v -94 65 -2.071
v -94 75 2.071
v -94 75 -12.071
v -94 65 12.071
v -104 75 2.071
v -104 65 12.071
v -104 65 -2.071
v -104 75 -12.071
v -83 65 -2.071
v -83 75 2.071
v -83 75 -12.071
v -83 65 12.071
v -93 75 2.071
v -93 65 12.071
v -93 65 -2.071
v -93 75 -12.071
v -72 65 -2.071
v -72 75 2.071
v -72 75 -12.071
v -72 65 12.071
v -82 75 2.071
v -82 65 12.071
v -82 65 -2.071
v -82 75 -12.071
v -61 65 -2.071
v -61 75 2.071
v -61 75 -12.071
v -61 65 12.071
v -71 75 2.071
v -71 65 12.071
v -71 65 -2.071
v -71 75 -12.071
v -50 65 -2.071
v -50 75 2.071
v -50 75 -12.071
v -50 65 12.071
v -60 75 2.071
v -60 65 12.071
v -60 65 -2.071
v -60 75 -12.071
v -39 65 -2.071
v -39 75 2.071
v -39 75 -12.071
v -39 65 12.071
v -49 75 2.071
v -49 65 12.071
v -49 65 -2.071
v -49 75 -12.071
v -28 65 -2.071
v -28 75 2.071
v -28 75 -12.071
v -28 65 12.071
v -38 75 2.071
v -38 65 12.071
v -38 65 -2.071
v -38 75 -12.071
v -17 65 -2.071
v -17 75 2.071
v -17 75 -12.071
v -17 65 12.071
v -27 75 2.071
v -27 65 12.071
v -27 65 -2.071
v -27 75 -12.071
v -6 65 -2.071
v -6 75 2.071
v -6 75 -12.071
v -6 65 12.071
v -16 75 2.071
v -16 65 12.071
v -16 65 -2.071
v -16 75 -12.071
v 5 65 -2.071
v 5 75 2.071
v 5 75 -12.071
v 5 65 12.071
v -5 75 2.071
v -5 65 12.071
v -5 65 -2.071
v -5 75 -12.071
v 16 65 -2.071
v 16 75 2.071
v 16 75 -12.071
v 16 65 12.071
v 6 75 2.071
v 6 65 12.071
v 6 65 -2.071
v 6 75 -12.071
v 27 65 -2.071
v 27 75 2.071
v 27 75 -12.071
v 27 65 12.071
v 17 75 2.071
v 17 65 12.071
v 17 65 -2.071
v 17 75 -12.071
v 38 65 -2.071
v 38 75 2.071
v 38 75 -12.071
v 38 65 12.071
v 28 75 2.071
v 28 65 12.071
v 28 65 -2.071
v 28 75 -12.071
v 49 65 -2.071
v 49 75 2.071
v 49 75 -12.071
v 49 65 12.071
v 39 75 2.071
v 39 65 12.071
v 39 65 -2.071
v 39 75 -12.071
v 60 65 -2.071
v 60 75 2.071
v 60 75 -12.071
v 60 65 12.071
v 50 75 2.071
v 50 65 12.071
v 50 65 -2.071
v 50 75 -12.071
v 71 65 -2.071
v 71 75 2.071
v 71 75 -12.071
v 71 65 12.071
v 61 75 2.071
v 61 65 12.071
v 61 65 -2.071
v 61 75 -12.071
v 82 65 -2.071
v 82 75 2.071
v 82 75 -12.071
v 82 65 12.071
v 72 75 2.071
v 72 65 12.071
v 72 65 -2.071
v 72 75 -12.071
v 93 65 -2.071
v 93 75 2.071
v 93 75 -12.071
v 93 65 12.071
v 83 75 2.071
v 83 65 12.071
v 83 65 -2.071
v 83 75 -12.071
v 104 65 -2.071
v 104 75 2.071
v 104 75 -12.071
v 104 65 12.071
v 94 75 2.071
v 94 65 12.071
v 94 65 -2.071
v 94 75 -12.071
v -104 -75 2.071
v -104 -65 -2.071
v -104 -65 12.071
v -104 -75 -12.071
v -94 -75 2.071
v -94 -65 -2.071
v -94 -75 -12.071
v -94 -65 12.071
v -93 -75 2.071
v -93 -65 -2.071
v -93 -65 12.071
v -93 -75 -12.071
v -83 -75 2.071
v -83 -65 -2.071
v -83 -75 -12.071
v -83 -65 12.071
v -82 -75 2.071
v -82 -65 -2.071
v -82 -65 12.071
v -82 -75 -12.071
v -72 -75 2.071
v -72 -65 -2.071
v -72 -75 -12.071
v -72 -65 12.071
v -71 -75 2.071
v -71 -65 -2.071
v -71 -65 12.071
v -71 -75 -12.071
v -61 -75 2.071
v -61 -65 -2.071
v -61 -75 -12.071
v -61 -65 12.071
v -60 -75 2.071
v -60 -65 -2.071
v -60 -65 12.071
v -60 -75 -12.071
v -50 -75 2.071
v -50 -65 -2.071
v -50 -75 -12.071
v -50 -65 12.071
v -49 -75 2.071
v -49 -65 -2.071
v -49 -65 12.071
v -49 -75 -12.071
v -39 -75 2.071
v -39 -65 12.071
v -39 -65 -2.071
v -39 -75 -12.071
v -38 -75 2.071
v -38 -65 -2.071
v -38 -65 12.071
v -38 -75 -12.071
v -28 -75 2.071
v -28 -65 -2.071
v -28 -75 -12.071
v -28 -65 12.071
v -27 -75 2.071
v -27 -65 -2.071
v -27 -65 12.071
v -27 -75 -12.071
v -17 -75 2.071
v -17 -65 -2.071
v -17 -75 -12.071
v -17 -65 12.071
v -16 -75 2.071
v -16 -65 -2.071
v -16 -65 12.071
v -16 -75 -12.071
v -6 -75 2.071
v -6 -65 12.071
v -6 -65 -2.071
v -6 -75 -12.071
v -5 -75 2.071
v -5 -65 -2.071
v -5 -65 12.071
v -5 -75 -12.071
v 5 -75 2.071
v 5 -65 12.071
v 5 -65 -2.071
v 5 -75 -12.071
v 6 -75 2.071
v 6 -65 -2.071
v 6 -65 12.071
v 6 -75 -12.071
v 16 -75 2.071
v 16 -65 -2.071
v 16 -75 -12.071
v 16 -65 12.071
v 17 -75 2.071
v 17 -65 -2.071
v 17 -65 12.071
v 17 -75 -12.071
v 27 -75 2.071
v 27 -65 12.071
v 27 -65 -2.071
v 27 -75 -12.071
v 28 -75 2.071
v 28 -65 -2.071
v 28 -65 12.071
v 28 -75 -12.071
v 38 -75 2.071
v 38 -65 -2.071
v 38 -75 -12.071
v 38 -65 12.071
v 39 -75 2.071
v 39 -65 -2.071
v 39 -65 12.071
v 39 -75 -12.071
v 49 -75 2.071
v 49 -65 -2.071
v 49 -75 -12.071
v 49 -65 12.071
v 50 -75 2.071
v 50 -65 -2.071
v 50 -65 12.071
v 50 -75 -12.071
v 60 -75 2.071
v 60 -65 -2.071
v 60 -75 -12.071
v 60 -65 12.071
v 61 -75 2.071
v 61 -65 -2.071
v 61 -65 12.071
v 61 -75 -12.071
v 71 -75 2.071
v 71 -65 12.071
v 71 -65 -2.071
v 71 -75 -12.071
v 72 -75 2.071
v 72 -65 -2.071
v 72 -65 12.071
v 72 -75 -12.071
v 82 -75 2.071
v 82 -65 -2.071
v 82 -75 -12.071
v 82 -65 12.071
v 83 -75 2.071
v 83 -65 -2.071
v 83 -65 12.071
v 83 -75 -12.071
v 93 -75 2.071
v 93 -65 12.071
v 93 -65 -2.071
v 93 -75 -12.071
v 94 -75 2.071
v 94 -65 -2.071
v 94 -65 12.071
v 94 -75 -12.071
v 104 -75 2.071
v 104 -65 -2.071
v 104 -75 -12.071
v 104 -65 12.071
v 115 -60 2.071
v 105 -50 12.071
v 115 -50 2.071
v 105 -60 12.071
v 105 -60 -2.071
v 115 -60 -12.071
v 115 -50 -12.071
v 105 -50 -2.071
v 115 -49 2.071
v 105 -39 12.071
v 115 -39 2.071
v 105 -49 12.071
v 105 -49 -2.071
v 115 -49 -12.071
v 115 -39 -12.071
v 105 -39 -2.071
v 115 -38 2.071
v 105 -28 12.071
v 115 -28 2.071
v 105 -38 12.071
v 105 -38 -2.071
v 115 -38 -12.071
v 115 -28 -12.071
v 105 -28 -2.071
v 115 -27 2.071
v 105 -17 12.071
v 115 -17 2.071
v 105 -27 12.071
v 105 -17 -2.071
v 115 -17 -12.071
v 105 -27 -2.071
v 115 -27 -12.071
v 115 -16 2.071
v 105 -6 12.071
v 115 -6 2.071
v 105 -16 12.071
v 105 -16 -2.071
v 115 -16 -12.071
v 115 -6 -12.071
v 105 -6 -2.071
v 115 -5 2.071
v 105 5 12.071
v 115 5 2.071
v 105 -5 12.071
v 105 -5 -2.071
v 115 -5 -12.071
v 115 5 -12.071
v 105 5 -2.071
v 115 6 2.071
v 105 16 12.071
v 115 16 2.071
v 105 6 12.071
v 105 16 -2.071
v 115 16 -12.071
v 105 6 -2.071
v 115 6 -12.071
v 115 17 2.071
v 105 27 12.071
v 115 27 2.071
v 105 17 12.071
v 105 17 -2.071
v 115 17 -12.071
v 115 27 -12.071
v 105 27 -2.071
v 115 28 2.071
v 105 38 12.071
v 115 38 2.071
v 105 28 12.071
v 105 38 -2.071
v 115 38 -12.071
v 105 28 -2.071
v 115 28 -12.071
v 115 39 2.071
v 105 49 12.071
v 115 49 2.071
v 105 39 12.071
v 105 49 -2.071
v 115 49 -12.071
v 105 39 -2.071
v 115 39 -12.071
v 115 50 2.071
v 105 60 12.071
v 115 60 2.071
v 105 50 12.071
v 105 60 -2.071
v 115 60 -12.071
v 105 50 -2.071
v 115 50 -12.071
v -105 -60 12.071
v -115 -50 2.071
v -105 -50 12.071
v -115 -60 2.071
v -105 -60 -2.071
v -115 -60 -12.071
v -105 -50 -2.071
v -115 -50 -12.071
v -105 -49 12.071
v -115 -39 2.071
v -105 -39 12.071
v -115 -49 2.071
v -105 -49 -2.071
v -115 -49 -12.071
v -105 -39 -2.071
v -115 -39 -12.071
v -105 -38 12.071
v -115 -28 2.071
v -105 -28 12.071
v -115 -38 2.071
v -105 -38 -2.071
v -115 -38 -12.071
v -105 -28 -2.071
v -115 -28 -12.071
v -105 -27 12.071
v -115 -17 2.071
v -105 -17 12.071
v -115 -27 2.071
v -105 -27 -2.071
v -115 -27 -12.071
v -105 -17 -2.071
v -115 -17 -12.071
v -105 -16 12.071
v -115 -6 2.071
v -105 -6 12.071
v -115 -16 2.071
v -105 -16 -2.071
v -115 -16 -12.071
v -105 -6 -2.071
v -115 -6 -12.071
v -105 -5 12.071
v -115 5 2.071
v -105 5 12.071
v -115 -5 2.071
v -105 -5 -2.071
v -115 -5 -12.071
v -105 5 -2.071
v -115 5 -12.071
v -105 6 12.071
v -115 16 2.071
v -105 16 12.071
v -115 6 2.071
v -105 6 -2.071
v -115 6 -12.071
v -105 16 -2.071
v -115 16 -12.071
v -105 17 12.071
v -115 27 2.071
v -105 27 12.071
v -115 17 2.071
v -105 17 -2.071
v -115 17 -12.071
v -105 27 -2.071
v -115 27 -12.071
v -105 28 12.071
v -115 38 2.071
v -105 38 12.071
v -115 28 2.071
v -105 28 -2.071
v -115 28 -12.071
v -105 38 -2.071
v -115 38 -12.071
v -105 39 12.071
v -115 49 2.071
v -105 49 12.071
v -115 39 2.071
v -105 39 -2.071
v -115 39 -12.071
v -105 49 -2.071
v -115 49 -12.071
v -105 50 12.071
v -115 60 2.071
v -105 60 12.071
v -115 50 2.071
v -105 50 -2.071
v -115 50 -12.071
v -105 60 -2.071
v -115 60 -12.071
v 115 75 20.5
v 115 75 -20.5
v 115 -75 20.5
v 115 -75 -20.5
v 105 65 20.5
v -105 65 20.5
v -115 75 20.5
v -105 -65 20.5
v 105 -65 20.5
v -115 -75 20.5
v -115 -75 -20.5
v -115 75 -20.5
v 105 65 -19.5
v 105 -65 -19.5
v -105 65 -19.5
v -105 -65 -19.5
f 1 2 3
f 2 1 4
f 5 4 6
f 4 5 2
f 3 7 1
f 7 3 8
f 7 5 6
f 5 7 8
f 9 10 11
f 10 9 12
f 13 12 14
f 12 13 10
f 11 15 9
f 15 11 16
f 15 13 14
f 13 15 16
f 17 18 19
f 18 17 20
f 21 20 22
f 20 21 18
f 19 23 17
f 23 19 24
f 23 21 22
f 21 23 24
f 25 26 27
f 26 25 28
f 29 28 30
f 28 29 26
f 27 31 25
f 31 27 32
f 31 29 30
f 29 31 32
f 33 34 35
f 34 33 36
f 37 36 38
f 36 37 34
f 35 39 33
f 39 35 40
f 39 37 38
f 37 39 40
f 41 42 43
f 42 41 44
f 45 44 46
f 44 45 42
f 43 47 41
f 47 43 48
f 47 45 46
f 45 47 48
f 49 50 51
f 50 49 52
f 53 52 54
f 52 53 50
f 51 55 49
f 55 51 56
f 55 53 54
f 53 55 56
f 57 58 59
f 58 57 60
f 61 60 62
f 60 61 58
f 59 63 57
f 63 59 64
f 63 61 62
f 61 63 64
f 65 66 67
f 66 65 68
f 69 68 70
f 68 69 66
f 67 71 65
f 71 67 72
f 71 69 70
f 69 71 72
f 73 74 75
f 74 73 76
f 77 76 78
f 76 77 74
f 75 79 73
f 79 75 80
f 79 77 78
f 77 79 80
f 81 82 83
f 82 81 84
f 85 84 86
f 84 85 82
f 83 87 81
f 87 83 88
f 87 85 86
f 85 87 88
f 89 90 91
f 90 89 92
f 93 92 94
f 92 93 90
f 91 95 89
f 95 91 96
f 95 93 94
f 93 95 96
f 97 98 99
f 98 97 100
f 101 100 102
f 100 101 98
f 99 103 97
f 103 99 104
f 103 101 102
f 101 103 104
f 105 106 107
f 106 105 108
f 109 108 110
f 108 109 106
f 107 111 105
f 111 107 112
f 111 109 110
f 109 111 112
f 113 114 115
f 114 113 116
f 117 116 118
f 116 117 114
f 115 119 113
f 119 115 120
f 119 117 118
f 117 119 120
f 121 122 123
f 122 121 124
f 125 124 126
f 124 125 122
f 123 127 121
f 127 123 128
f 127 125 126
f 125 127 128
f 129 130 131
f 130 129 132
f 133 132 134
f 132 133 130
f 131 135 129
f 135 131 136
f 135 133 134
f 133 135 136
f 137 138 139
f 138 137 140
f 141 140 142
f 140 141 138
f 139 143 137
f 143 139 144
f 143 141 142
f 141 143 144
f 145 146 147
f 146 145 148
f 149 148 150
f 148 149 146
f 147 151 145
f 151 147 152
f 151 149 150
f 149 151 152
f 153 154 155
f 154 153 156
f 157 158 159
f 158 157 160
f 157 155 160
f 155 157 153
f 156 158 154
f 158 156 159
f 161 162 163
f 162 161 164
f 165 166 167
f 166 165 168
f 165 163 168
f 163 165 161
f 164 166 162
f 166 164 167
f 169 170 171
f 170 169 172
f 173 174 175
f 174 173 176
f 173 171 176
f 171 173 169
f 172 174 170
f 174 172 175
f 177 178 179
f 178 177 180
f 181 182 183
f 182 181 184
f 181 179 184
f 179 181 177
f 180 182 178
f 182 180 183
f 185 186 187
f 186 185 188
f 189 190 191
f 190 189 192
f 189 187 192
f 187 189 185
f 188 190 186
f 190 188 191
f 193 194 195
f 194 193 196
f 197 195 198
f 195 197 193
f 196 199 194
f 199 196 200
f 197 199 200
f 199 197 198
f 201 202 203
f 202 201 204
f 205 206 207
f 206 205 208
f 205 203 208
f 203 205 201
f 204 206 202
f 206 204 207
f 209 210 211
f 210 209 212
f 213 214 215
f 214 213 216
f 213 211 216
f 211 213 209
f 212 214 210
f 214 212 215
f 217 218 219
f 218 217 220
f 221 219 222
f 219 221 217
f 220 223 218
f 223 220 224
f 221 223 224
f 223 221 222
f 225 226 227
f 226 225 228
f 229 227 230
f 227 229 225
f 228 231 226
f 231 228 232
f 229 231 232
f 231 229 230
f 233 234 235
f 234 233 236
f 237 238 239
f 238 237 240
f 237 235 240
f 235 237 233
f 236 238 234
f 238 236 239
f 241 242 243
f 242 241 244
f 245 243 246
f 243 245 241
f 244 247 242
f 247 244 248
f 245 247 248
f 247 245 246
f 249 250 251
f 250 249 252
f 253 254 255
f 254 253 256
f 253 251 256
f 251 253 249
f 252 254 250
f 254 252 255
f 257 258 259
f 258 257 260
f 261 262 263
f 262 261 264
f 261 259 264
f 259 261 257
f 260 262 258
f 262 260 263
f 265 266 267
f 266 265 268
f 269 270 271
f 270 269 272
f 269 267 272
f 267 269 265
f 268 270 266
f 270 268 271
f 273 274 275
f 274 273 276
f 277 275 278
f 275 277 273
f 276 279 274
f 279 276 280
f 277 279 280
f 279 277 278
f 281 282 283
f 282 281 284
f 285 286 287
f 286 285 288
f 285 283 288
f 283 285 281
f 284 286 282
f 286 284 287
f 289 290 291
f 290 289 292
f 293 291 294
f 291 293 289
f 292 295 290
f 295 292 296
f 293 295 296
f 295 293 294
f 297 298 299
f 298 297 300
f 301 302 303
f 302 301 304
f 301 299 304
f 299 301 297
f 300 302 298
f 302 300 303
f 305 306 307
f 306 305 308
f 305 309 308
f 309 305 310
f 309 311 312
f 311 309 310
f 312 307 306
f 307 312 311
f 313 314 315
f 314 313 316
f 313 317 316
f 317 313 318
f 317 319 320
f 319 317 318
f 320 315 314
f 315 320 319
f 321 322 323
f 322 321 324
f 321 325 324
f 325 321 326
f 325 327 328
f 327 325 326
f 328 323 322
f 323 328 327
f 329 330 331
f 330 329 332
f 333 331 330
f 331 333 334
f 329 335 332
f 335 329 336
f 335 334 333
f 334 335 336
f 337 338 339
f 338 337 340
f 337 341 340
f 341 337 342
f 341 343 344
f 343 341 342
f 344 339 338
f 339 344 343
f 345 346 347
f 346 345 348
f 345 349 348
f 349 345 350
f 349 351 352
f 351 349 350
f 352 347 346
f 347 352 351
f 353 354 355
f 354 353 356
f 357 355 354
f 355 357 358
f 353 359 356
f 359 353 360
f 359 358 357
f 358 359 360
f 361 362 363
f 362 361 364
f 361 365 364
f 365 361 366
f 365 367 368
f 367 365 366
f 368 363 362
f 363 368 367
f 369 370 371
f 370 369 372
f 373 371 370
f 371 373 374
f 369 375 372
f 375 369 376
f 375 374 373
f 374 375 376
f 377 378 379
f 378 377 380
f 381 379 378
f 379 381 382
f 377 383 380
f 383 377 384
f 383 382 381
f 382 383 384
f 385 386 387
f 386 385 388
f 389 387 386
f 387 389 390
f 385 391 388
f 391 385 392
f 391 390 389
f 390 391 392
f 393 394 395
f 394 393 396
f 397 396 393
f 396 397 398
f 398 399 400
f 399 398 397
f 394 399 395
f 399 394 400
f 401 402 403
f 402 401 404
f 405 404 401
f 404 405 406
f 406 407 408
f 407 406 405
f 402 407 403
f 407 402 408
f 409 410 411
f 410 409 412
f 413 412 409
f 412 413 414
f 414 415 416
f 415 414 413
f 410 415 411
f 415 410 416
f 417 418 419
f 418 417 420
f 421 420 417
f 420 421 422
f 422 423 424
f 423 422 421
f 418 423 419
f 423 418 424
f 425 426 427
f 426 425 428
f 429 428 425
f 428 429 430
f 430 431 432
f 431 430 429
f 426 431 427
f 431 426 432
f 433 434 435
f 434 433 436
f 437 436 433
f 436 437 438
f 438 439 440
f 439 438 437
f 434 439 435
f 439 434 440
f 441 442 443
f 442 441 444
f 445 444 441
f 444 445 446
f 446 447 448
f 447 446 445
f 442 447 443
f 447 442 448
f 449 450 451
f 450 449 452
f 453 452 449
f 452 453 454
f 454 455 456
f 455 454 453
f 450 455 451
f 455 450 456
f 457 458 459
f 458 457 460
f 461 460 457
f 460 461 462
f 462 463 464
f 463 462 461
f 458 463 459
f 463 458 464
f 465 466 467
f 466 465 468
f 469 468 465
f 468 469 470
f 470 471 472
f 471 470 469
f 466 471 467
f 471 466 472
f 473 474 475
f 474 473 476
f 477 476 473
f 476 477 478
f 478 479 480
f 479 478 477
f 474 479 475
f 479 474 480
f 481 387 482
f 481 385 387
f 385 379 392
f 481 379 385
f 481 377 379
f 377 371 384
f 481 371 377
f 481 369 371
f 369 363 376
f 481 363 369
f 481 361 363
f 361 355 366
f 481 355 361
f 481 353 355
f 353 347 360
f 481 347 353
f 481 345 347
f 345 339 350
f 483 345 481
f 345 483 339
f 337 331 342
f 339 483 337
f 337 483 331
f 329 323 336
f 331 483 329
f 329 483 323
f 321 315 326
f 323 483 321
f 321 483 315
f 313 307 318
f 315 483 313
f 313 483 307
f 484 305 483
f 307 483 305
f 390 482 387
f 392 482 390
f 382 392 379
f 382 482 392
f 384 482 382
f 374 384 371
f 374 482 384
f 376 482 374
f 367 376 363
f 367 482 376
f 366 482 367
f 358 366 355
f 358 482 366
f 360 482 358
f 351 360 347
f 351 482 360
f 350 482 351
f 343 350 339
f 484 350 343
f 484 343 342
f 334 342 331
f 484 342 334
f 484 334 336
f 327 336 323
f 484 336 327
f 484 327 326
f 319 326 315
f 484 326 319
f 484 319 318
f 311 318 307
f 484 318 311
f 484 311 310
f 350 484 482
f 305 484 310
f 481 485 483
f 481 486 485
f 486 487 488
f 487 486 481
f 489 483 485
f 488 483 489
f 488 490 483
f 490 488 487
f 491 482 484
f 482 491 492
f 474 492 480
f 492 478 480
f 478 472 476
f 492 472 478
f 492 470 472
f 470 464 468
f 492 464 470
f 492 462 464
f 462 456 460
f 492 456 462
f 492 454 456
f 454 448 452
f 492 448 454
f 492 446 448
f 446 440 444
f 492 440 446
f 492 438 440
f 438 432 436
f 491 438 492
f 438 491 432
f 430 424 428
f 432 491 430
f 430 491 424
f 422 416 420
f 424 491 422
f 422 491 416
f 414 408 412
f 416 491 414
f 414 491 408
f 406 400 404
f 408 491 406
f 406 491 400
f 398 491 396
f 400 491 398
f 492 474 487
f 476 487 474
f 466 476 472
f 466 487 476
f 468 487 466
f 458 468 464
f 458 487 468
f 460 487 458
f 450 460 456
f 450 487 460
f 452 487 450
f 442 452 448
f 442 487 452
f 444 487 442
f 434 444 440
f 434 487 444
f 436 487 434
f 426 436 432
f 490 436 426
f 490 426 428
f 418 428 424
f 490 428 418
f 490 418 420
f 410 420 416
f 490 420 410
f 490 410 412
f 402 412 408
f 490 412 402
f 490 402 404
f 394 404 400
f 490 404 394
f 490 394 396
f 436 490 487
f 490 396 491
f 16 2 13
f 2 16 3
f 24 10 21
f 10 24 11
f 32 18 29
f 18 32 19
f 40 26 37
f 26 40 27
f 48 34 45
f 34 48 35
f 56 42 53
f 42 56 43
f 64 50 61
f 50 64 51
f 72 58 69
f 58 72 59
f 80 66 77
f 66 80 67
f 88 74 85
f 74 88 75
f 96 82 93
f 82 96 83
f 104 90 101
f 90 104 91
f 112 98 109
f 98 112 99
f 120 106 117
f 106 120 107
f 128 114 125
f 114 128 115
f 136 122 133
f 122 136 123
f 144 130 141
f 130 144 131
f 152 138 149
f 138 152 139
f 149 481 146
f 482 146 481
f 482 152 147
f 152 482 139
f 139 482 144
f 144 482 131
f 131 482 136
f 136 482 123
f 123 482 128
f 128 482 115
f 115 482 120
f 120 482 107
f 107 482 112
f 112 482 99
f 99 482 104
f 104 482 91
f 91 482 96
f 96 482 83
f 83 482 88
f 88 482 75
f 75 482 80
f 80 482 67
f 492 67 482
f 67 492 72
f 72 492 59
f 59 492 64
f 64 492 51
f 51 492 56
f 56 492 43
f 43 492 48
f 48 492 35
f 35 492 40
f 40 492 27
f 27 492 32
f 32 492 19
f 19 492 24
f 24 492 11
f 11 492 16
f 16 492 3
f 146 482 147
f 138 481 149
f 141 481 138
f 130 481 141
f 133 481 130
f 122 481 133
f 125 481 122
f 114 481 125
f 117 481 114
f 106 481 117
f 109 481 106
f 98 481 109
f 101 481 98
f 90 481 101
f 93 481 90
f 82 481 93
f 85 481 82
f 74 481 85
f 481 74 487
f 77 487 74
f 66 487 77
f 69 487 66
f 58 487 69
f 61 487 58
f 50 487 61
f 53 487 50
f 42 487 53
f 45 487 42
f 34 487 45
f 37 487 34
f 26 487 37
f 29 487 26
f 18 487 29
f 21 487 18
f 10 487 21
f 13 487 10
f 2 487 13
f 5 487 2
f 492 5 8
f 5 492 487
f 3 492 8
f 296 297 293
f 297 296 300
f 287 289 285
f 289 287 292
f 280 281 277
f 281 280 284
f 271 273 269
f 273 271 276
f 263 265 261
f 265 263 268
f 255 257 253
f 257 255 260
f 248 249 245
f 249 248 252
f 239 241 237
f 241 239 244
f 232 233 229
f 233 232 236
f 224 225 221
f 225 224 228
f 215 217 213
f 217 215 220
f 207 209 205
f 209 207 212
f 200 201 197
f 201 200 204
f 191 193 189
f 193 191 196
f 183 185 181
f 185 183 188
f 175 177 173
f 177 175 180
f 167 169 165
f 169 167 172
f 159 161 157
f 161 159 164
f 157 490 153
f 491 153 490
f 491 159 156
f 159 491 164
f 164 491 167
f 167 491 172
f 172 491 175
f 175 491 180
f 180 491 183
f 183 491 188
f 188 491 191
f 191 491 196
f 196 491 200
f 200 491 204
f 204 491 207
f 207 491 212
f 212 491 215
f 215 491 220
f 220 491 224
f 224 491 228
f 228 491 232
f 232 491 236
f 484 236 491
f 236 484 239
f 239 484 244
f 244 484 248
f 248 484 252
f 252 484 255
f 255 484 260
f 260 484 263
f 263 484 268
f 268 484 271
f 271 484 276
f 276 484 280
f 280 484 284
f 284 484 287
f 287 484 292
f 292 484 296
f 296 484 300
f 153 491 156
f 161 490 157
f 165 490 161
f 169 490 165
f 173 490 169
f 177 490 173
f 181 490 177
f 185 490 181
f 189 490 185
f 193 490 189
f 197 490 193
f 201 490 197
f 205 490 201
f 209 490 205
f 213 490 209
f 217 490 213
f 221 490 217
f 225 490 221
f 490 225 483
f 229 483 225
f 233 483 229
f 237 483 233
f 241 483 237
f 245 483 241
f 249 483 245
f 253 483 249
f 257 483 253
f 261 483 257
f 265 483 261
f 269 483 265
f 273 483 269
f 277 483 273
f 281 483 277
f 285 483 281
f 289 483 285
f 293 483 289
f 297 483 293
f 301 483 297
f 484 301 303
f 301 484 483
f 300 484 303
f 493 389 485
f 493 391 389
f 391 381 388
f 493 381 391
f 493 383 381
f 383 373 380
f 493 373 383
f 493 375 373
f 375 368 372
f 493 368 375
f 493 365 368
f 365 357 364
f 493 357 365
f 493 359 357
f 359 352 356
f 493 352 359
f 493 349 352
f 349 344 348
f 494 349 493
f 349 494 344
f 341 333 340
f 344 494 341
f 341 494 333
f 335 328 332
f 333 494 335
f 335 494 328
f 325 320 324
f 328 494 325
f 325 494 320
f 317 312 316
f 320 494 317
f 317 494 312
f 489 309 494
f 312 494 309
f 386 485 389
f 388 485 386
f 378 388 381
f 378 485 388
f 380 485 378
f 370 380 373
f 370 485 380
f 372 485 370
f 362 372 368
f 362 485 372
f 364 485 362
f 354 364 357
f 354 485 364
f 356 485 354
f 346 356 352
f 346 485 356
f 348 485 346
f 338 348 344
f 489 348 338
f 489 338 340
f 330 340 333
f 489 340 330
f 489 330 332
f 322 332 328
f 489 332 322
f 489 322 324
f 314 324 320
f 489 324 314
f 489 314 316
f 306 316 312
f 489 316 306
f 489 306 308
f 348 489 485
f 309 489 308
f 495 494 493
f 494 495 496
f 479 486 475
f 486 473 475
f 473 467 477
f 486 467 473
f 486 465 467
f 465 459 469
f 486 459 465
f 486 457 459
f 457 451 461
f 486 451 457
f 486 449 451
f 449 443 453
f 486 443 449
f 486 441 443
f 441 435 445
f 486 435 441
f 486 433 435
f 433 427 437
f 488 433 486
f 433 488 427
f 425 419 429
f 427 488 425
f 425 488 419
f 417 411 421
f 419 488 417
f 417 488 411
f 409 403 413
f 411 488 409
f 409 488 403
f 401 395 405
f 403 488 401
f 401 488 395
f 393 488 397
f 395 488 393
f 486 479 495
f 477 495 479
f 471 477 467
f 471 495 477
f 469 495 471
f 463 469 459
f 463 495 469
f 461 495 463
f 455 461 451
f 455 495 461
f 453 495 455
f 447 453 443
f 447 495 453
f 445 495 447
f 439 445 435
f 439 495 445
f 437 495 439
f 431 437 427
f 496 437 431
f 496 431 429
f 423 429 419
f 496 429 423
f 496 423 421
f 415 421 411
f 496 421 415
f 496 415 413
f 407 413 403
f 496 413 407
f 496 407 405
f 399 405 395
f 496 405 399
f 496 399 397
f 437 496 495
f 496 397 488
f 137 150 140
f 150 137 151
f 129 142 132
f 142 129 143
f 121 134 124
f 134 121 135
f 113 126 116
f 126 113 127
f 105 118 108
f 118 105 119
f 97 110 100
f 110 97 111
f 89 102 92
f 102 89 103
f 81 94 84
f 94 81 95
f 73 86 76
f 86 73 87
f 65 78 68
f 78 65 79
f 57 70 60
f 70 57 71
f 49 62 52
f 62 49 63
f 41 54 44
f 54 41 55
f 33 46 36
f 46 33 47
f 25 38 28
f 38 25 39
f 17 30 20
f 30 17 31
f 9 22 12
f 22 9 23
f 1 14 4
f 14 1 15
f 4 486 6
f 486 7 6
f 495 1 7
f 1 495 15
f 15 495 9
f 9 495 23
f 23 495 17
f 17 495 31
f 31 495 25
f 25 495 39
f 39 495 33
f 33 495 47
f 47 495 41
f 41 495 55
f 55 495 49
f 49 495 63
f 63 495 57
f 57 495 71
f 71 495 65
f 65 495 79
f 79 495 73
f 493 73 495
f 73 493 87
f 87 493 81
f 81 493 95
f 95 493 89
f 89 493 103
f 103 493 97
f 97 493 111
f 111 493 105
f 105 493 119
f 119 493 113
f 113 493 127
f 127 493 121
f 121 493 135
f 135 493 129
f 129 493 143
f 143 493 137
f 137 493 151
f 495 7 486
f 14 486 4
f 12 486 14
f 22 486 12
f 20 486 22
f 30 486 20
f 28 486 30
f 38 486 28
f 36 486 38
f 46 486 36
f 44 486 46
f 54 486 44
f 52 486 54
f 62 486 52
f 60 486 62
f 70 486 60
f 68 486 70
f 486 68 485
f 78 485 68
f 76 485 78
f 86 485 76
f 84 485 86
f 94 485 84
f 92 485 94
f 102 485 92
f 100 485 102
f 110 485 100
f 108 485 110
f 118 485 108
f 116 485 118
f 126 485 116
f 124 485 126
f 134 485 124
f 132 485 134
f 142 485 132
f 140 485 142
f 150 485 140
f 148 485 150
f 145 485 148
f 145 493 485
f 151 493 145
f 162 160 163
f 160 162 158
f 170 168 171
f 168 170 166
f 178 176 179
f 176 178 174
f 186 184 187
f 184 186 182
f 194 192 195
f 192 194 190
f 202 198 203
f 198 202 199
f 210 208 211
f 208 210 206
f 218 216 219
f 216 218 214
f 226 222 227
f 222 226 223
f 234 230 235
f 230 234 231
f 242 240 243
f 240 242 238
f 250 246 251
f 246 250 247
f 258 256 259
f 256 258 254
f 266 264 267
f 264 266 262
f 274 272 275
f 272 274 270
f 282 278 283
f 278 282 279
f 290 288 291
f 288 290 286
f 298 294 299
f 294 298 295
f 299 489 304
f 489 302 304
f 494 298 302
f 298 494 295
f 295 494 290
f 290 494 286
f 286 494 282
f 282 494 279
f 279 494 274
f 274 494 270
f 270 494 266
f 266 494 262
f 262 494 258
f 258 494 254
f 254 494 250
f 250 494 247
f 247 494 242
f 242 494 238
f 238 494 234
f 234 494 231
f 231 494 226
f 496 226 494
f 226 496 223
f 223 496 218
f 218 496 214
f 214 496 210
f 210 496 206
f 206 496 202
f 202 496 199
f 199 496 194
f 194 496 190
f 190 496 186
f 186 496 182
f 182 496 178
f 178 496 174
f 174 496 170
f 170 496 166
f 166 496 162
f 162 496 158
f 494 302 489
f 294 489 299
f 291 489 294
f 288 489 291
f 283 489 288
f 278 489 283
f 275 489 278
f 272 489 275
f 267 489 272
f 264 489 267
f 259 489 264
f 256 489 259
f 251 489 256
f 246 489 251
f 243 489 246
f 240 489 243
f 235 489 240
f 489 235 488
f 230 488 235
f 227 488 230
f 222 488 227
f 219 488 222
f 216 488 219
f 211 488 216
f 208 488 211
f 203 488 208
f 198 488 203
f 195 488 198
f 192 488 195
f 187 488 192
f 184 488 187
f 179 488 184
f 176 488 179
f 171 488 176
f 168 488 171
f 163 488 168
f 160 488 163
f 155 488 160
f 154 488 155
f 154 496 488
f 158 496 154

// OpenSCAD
height = 41;

width = 130+20;
length = 130+80+20;
difference(){
	cube([length, width, height], center=true);
	#translate([0, 0, 0.5])
		cube([130+80, 130, height-1], center=true);
	
	for(n = [-99: 11 : 99])
		#translate([n, width/2-5, 0])
			rotate([-45, 0, 0])
				cube([10, 30, 10], center=true);
	
	for(n = [-99: 11 : 99])
		#translate([n, -(width/2-5), 0])
			rotate([45, 0, 0])
				cube([10, 30, 10], center=true);
	
	for(n = [-55: 11 : 55])
		#translate([length/2-5, n, 0])
			rotate([45, 0, 90])
				cube([10, 30, 10], center=true);
	
	for(n = [-55: 11 : 55])
		#translate([-(length/2-5), n, 0])
			rotate([-45, 0, 90])
				cube([10, 30, 10], center=true);
}
